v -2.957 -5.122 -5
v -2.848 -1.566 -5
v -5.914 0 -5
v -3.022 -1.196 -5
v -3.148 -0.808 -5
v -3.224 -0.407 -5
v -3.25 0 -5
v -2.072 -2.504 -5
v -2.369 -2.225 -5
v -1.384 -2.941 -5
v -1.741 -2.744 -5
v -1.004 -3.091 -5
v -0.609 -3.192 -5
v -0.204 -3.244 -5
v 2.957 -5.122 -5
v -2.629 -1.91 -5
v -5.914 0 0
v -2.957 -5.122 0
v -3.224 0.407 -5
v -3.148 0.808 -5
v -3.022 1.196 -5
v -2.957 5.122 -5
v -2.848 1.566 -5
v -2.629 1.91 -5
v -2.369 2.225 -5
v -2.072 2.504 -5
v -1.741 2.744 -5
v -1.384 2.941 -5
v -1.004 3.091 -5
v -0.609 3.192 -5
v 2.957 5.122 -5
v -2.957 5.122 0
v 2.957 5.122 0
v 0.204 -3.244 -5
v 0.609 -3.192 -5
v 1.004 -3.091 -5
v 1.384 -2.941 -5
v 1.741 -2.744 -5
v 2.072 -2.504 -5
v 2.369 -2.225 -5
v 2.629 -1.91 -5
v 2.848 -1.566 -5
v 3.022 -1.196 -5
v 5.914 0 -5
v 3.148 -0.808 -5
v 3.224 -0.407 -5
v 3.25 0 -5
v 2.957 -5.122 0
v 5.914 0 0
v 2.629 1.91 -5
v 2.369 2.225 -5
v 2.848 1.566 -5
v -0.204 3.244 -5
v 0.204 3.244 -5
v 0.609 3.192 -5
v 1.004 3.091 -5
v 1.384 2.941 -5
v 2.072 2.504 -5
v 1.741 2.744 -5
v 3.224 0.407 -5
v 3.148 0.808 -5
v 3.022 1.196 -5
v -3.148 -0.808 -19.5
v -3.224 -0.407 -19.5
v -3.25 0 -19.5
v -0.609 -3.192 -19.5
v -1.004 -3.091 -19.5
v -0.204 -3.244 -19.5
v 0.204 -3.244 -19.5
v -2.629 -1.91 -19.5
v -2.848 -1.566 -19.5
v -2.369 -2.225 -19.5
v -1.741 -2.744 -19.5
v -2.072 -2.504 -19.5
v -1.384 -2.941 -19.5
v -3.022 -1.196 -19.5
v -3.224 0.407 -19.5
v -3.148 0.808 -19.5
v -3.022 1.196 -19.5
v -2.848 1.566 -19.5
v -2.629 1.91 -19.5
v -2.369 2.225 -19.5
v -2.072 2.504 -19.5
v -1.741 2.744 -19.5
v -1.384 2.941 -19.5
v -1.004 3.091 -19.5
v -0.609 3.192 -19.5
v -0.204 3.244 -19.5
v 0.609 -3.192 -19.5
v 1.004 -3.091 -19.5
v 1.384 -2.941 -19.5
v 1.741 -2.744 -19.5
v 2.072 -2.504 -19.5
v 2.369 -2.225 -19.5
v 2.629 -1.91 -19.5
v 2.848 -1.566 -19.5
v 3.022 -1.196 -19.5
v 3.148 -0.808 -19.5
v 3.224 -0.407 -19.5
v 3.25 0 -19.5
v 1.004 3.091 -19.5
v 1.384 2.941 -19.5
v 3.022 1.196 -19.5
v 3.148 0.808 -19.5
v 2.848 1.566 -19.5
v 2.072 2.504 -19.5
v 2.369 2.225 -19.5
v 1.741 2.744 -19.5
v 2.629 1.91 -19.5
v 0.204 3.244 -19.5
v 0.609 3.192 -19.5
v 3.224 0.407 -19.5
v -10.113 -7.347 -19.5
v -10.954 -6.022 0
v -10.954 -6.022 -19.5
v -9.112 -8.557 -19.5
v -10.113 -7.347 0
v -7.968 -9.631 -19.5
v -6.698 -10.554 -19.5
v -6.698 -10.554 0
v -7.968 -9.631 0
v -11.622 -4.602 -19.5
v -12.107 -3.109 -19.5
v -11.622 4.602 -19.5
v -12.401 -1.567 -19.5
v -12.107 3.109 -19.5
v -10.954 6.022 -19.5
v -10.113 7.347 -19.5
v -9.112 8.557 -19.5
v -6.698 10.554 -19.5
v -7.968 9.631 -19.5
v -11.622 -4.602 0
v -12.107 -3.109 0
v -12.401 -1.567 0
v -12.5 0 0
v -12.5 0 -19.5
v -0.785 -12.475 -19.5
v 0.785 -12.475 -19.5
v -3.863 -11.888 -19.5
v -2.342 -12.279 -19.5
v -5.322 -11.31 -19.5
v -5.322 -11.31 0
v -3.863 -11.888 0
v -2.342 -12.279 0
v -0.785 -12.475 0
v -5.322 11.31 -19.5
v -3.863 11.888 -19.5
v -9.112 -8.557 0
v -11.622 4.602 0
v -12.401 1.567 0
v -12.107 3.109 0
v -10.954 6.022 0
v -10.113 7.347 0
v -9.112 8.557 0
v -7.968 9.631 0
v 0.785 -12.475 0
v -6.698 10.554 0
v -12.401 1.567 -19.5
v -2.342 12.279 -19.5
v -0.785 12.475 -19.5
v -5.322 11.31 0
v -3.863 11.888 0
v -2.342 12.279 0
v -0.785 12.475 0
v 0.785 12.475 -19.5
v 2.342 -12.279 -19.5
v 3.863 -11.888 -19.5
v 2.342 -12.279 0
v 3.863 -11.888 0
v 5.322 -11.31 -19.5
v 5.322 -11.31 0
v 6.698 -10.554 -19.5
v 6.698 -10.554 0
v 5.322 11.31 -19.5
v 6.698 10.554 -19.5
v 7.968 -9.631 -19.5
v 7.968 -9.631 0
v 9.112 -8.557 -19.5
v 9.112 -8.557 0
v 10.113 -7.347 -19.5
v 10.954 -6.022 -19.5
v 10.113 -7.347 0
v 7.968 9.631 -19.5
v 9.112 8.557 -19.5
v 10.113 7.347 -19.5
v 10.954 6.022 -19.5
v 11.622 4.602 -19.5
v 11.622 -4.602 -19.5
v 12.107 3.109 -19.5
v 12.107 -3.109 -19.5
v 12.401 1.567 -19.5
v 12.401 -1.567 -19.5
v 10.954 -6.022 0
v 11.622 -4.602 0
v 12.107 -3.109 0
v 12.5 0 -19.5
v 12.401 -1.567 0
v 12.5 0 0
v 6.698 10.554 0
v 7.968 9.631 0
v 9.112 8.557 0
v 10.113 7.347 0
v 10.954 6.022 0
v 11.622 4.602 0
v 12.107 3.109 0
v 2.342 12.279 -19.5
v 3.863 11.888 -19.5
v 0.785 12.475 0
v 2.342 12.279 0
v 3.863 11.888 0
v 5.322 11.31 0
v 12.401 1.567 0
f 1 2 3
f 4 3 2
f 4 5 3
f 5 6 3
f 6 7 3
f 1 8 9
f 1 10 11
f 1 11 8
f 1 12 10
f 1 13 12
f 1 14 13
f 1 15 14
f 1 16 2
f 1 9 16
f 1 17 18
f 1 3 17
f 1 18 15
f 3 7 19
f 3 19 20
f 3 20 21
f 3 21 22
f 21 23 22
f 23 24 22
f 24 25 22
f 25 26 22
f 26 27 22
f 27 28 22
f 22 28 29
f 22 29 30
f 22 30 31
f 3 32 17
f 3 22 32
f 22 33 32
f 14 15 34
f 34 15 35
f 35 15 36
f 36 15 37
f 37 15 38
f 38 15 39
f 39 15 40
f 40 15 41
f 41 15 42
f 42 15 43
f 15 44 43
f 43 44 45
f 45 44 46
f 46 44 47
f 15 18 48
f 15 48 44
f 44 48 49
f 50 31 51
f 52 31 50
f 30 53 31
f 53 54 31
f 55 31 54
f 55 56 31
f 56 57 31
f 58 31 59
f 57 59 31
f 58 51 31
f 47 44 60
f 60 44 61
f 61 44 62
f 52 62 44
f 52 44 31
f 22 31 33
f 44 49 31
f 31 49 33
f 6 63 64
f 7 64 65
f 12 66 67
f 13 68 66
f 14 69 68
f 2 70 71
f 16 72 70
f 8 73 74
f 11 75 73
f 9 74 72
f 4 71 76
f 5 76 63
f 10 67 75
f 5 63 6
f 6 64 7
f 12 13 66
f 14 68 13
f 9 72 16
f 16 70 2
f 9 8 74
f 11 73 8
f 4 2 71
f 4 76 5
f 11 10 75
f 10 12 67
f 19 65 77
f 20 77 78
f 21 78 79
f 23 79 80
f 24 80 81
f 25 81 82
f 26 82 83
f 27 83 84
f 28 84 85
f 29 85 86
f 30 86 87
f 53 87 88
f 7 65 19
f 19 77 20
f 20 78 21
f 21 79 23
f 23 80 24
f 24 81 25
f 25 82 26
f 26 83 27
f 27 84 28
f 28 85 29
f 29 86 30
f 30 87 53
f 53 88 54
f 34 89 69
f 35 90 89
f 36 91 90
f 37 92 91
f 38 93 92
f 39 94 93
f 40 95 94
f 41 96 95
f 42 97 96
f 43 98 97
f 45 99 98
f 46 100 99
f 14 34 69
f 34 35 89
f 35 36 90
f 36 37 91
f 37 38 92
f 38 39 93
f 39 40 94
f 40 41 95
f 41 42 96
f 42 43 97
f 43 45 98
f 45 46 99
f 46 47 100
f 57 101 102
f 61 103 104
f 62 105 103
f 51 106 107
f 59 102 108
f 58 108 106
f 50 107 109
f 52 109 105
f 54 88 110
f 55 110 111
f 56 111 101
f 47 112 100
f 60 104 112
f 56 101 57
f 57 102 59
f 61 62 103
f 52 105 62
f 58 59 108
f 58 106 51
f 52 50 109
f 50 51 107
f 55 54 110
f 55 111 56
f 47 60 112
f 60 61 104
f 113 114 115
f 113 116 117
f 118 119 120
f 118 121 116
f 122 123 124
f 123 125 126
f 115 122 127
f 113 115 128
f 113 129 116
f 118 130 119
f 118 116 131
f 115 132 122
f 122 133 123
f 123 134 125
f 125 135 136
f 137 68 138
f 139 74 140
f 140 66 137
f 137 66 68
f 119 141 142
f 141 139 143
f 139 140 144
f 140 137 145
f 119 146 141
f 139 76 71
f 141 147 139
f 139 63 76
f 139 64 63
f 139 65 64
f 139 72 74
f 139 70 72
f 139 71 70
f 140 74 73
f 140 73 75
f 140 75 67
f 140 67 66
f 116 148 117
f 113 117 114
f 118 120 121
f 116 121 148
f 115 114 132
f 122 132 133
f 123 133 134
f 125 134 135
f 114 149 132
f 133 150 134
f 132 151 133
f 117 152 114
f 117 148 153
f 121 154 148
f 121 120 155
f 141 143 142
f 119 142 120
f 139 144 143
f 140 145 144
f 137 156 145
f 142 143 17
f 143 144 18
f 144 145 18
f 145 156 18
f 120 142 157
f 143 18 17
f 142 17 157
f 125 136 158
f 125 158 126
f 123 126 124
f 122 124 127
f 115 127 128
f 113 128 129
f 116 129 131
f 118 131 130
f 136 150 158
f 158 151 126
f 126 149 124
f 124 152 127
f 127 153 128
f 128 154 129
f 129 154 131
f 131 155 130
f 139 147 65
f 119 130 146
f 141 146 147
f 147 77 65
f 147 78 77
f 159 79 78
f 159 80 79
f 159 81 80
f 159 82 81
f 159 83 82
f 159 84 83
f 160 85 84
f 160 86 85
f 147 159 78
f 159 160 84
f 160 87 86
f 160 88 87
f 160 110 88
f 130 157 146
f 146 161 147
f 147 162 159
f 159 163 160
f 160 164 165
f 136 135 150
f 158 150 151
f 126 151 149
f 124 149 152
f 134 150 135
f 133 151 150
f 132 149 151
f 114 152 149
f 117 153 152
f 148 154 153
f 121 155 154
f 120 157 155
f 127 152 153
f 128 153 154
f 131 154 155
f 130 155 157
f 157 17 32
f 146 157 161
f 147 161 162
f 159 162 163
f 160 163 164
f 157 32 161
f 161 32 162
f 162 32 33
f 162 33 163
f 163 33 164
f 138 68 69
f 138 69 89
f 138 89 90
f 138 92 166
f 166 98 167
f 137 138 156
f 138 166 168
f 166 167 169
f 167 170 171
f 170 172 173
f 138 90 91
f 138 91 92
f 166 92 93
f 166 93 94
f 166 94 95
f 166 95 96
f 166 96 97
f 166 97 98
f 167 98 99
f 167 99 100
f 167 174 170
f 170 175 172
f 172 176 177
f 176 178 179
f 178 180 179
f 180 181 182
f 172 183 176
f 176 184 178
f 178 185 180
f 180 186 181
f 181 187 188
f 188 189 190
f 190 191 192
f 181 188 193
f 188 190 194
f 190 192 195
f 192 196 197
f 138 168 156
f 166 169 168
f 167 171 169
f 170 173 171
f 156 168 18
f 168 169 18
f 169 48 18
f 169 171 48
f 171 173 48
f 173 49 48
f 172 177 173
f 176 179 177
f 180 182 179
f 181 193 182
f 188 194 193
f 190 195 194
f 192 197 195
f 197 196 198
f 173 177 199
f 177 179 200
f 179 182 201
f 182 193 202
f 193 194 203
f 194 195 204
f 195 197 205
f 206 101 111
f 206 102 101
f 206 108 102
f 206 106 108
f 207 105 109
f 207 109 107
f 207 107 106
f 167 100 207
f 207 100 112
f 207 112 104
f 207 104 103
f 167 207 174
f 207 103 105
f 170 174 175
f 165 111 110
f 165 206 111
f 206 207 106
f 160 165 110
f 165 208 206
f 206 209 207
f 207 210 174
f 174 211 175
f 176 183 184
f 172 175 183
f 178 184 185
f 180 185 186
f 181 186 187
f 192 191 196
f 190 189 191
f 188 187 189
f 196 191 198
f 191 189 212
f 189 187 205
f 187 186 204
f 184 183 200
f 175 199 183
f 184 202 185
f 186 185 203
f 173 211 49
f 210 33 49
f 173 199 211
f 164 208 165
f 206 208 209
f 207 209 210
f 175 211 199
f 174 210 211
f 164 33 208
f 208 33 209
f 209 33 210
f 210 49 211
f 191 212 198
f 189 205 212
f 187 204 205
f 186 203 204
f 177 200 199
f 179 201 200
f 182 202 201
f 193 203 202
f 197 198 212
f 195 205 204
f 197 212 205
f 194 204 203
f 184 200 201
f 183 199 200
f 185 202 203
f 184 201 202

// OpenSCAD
$fn = 50;


difference() {
	union() {
		translate(v = [0, 0, -19.5000000000]) {
			cylinder(h = 19.5000000000, r = 12.5000000000);
		}
	}
	union() {
		translate(v = [0, 0, 0]) {
			rotate(a = [0, 0, 0]) {
				difference() {
					union() {
						translate(v = [0, 0, -5]) {
							linear_extrude(height = 5) {
								polygon(points = [[5.9142500000, 0.0000000000], [2.9571250000, 5.1218907443], [-2.9571250000, 5.1218907443], [-5.9142500000, 0.0000000000], [-2.9571250000, -5.1218907443], [2.9571250000, -5.1218907443]]);
							}
						}
					}
					union();
				}
			}
		}
		#translate(v = [0, 0, -100.0000000000]) {
			cylinder(h = 200, r = 3.2500000000);
		}
	}
}
